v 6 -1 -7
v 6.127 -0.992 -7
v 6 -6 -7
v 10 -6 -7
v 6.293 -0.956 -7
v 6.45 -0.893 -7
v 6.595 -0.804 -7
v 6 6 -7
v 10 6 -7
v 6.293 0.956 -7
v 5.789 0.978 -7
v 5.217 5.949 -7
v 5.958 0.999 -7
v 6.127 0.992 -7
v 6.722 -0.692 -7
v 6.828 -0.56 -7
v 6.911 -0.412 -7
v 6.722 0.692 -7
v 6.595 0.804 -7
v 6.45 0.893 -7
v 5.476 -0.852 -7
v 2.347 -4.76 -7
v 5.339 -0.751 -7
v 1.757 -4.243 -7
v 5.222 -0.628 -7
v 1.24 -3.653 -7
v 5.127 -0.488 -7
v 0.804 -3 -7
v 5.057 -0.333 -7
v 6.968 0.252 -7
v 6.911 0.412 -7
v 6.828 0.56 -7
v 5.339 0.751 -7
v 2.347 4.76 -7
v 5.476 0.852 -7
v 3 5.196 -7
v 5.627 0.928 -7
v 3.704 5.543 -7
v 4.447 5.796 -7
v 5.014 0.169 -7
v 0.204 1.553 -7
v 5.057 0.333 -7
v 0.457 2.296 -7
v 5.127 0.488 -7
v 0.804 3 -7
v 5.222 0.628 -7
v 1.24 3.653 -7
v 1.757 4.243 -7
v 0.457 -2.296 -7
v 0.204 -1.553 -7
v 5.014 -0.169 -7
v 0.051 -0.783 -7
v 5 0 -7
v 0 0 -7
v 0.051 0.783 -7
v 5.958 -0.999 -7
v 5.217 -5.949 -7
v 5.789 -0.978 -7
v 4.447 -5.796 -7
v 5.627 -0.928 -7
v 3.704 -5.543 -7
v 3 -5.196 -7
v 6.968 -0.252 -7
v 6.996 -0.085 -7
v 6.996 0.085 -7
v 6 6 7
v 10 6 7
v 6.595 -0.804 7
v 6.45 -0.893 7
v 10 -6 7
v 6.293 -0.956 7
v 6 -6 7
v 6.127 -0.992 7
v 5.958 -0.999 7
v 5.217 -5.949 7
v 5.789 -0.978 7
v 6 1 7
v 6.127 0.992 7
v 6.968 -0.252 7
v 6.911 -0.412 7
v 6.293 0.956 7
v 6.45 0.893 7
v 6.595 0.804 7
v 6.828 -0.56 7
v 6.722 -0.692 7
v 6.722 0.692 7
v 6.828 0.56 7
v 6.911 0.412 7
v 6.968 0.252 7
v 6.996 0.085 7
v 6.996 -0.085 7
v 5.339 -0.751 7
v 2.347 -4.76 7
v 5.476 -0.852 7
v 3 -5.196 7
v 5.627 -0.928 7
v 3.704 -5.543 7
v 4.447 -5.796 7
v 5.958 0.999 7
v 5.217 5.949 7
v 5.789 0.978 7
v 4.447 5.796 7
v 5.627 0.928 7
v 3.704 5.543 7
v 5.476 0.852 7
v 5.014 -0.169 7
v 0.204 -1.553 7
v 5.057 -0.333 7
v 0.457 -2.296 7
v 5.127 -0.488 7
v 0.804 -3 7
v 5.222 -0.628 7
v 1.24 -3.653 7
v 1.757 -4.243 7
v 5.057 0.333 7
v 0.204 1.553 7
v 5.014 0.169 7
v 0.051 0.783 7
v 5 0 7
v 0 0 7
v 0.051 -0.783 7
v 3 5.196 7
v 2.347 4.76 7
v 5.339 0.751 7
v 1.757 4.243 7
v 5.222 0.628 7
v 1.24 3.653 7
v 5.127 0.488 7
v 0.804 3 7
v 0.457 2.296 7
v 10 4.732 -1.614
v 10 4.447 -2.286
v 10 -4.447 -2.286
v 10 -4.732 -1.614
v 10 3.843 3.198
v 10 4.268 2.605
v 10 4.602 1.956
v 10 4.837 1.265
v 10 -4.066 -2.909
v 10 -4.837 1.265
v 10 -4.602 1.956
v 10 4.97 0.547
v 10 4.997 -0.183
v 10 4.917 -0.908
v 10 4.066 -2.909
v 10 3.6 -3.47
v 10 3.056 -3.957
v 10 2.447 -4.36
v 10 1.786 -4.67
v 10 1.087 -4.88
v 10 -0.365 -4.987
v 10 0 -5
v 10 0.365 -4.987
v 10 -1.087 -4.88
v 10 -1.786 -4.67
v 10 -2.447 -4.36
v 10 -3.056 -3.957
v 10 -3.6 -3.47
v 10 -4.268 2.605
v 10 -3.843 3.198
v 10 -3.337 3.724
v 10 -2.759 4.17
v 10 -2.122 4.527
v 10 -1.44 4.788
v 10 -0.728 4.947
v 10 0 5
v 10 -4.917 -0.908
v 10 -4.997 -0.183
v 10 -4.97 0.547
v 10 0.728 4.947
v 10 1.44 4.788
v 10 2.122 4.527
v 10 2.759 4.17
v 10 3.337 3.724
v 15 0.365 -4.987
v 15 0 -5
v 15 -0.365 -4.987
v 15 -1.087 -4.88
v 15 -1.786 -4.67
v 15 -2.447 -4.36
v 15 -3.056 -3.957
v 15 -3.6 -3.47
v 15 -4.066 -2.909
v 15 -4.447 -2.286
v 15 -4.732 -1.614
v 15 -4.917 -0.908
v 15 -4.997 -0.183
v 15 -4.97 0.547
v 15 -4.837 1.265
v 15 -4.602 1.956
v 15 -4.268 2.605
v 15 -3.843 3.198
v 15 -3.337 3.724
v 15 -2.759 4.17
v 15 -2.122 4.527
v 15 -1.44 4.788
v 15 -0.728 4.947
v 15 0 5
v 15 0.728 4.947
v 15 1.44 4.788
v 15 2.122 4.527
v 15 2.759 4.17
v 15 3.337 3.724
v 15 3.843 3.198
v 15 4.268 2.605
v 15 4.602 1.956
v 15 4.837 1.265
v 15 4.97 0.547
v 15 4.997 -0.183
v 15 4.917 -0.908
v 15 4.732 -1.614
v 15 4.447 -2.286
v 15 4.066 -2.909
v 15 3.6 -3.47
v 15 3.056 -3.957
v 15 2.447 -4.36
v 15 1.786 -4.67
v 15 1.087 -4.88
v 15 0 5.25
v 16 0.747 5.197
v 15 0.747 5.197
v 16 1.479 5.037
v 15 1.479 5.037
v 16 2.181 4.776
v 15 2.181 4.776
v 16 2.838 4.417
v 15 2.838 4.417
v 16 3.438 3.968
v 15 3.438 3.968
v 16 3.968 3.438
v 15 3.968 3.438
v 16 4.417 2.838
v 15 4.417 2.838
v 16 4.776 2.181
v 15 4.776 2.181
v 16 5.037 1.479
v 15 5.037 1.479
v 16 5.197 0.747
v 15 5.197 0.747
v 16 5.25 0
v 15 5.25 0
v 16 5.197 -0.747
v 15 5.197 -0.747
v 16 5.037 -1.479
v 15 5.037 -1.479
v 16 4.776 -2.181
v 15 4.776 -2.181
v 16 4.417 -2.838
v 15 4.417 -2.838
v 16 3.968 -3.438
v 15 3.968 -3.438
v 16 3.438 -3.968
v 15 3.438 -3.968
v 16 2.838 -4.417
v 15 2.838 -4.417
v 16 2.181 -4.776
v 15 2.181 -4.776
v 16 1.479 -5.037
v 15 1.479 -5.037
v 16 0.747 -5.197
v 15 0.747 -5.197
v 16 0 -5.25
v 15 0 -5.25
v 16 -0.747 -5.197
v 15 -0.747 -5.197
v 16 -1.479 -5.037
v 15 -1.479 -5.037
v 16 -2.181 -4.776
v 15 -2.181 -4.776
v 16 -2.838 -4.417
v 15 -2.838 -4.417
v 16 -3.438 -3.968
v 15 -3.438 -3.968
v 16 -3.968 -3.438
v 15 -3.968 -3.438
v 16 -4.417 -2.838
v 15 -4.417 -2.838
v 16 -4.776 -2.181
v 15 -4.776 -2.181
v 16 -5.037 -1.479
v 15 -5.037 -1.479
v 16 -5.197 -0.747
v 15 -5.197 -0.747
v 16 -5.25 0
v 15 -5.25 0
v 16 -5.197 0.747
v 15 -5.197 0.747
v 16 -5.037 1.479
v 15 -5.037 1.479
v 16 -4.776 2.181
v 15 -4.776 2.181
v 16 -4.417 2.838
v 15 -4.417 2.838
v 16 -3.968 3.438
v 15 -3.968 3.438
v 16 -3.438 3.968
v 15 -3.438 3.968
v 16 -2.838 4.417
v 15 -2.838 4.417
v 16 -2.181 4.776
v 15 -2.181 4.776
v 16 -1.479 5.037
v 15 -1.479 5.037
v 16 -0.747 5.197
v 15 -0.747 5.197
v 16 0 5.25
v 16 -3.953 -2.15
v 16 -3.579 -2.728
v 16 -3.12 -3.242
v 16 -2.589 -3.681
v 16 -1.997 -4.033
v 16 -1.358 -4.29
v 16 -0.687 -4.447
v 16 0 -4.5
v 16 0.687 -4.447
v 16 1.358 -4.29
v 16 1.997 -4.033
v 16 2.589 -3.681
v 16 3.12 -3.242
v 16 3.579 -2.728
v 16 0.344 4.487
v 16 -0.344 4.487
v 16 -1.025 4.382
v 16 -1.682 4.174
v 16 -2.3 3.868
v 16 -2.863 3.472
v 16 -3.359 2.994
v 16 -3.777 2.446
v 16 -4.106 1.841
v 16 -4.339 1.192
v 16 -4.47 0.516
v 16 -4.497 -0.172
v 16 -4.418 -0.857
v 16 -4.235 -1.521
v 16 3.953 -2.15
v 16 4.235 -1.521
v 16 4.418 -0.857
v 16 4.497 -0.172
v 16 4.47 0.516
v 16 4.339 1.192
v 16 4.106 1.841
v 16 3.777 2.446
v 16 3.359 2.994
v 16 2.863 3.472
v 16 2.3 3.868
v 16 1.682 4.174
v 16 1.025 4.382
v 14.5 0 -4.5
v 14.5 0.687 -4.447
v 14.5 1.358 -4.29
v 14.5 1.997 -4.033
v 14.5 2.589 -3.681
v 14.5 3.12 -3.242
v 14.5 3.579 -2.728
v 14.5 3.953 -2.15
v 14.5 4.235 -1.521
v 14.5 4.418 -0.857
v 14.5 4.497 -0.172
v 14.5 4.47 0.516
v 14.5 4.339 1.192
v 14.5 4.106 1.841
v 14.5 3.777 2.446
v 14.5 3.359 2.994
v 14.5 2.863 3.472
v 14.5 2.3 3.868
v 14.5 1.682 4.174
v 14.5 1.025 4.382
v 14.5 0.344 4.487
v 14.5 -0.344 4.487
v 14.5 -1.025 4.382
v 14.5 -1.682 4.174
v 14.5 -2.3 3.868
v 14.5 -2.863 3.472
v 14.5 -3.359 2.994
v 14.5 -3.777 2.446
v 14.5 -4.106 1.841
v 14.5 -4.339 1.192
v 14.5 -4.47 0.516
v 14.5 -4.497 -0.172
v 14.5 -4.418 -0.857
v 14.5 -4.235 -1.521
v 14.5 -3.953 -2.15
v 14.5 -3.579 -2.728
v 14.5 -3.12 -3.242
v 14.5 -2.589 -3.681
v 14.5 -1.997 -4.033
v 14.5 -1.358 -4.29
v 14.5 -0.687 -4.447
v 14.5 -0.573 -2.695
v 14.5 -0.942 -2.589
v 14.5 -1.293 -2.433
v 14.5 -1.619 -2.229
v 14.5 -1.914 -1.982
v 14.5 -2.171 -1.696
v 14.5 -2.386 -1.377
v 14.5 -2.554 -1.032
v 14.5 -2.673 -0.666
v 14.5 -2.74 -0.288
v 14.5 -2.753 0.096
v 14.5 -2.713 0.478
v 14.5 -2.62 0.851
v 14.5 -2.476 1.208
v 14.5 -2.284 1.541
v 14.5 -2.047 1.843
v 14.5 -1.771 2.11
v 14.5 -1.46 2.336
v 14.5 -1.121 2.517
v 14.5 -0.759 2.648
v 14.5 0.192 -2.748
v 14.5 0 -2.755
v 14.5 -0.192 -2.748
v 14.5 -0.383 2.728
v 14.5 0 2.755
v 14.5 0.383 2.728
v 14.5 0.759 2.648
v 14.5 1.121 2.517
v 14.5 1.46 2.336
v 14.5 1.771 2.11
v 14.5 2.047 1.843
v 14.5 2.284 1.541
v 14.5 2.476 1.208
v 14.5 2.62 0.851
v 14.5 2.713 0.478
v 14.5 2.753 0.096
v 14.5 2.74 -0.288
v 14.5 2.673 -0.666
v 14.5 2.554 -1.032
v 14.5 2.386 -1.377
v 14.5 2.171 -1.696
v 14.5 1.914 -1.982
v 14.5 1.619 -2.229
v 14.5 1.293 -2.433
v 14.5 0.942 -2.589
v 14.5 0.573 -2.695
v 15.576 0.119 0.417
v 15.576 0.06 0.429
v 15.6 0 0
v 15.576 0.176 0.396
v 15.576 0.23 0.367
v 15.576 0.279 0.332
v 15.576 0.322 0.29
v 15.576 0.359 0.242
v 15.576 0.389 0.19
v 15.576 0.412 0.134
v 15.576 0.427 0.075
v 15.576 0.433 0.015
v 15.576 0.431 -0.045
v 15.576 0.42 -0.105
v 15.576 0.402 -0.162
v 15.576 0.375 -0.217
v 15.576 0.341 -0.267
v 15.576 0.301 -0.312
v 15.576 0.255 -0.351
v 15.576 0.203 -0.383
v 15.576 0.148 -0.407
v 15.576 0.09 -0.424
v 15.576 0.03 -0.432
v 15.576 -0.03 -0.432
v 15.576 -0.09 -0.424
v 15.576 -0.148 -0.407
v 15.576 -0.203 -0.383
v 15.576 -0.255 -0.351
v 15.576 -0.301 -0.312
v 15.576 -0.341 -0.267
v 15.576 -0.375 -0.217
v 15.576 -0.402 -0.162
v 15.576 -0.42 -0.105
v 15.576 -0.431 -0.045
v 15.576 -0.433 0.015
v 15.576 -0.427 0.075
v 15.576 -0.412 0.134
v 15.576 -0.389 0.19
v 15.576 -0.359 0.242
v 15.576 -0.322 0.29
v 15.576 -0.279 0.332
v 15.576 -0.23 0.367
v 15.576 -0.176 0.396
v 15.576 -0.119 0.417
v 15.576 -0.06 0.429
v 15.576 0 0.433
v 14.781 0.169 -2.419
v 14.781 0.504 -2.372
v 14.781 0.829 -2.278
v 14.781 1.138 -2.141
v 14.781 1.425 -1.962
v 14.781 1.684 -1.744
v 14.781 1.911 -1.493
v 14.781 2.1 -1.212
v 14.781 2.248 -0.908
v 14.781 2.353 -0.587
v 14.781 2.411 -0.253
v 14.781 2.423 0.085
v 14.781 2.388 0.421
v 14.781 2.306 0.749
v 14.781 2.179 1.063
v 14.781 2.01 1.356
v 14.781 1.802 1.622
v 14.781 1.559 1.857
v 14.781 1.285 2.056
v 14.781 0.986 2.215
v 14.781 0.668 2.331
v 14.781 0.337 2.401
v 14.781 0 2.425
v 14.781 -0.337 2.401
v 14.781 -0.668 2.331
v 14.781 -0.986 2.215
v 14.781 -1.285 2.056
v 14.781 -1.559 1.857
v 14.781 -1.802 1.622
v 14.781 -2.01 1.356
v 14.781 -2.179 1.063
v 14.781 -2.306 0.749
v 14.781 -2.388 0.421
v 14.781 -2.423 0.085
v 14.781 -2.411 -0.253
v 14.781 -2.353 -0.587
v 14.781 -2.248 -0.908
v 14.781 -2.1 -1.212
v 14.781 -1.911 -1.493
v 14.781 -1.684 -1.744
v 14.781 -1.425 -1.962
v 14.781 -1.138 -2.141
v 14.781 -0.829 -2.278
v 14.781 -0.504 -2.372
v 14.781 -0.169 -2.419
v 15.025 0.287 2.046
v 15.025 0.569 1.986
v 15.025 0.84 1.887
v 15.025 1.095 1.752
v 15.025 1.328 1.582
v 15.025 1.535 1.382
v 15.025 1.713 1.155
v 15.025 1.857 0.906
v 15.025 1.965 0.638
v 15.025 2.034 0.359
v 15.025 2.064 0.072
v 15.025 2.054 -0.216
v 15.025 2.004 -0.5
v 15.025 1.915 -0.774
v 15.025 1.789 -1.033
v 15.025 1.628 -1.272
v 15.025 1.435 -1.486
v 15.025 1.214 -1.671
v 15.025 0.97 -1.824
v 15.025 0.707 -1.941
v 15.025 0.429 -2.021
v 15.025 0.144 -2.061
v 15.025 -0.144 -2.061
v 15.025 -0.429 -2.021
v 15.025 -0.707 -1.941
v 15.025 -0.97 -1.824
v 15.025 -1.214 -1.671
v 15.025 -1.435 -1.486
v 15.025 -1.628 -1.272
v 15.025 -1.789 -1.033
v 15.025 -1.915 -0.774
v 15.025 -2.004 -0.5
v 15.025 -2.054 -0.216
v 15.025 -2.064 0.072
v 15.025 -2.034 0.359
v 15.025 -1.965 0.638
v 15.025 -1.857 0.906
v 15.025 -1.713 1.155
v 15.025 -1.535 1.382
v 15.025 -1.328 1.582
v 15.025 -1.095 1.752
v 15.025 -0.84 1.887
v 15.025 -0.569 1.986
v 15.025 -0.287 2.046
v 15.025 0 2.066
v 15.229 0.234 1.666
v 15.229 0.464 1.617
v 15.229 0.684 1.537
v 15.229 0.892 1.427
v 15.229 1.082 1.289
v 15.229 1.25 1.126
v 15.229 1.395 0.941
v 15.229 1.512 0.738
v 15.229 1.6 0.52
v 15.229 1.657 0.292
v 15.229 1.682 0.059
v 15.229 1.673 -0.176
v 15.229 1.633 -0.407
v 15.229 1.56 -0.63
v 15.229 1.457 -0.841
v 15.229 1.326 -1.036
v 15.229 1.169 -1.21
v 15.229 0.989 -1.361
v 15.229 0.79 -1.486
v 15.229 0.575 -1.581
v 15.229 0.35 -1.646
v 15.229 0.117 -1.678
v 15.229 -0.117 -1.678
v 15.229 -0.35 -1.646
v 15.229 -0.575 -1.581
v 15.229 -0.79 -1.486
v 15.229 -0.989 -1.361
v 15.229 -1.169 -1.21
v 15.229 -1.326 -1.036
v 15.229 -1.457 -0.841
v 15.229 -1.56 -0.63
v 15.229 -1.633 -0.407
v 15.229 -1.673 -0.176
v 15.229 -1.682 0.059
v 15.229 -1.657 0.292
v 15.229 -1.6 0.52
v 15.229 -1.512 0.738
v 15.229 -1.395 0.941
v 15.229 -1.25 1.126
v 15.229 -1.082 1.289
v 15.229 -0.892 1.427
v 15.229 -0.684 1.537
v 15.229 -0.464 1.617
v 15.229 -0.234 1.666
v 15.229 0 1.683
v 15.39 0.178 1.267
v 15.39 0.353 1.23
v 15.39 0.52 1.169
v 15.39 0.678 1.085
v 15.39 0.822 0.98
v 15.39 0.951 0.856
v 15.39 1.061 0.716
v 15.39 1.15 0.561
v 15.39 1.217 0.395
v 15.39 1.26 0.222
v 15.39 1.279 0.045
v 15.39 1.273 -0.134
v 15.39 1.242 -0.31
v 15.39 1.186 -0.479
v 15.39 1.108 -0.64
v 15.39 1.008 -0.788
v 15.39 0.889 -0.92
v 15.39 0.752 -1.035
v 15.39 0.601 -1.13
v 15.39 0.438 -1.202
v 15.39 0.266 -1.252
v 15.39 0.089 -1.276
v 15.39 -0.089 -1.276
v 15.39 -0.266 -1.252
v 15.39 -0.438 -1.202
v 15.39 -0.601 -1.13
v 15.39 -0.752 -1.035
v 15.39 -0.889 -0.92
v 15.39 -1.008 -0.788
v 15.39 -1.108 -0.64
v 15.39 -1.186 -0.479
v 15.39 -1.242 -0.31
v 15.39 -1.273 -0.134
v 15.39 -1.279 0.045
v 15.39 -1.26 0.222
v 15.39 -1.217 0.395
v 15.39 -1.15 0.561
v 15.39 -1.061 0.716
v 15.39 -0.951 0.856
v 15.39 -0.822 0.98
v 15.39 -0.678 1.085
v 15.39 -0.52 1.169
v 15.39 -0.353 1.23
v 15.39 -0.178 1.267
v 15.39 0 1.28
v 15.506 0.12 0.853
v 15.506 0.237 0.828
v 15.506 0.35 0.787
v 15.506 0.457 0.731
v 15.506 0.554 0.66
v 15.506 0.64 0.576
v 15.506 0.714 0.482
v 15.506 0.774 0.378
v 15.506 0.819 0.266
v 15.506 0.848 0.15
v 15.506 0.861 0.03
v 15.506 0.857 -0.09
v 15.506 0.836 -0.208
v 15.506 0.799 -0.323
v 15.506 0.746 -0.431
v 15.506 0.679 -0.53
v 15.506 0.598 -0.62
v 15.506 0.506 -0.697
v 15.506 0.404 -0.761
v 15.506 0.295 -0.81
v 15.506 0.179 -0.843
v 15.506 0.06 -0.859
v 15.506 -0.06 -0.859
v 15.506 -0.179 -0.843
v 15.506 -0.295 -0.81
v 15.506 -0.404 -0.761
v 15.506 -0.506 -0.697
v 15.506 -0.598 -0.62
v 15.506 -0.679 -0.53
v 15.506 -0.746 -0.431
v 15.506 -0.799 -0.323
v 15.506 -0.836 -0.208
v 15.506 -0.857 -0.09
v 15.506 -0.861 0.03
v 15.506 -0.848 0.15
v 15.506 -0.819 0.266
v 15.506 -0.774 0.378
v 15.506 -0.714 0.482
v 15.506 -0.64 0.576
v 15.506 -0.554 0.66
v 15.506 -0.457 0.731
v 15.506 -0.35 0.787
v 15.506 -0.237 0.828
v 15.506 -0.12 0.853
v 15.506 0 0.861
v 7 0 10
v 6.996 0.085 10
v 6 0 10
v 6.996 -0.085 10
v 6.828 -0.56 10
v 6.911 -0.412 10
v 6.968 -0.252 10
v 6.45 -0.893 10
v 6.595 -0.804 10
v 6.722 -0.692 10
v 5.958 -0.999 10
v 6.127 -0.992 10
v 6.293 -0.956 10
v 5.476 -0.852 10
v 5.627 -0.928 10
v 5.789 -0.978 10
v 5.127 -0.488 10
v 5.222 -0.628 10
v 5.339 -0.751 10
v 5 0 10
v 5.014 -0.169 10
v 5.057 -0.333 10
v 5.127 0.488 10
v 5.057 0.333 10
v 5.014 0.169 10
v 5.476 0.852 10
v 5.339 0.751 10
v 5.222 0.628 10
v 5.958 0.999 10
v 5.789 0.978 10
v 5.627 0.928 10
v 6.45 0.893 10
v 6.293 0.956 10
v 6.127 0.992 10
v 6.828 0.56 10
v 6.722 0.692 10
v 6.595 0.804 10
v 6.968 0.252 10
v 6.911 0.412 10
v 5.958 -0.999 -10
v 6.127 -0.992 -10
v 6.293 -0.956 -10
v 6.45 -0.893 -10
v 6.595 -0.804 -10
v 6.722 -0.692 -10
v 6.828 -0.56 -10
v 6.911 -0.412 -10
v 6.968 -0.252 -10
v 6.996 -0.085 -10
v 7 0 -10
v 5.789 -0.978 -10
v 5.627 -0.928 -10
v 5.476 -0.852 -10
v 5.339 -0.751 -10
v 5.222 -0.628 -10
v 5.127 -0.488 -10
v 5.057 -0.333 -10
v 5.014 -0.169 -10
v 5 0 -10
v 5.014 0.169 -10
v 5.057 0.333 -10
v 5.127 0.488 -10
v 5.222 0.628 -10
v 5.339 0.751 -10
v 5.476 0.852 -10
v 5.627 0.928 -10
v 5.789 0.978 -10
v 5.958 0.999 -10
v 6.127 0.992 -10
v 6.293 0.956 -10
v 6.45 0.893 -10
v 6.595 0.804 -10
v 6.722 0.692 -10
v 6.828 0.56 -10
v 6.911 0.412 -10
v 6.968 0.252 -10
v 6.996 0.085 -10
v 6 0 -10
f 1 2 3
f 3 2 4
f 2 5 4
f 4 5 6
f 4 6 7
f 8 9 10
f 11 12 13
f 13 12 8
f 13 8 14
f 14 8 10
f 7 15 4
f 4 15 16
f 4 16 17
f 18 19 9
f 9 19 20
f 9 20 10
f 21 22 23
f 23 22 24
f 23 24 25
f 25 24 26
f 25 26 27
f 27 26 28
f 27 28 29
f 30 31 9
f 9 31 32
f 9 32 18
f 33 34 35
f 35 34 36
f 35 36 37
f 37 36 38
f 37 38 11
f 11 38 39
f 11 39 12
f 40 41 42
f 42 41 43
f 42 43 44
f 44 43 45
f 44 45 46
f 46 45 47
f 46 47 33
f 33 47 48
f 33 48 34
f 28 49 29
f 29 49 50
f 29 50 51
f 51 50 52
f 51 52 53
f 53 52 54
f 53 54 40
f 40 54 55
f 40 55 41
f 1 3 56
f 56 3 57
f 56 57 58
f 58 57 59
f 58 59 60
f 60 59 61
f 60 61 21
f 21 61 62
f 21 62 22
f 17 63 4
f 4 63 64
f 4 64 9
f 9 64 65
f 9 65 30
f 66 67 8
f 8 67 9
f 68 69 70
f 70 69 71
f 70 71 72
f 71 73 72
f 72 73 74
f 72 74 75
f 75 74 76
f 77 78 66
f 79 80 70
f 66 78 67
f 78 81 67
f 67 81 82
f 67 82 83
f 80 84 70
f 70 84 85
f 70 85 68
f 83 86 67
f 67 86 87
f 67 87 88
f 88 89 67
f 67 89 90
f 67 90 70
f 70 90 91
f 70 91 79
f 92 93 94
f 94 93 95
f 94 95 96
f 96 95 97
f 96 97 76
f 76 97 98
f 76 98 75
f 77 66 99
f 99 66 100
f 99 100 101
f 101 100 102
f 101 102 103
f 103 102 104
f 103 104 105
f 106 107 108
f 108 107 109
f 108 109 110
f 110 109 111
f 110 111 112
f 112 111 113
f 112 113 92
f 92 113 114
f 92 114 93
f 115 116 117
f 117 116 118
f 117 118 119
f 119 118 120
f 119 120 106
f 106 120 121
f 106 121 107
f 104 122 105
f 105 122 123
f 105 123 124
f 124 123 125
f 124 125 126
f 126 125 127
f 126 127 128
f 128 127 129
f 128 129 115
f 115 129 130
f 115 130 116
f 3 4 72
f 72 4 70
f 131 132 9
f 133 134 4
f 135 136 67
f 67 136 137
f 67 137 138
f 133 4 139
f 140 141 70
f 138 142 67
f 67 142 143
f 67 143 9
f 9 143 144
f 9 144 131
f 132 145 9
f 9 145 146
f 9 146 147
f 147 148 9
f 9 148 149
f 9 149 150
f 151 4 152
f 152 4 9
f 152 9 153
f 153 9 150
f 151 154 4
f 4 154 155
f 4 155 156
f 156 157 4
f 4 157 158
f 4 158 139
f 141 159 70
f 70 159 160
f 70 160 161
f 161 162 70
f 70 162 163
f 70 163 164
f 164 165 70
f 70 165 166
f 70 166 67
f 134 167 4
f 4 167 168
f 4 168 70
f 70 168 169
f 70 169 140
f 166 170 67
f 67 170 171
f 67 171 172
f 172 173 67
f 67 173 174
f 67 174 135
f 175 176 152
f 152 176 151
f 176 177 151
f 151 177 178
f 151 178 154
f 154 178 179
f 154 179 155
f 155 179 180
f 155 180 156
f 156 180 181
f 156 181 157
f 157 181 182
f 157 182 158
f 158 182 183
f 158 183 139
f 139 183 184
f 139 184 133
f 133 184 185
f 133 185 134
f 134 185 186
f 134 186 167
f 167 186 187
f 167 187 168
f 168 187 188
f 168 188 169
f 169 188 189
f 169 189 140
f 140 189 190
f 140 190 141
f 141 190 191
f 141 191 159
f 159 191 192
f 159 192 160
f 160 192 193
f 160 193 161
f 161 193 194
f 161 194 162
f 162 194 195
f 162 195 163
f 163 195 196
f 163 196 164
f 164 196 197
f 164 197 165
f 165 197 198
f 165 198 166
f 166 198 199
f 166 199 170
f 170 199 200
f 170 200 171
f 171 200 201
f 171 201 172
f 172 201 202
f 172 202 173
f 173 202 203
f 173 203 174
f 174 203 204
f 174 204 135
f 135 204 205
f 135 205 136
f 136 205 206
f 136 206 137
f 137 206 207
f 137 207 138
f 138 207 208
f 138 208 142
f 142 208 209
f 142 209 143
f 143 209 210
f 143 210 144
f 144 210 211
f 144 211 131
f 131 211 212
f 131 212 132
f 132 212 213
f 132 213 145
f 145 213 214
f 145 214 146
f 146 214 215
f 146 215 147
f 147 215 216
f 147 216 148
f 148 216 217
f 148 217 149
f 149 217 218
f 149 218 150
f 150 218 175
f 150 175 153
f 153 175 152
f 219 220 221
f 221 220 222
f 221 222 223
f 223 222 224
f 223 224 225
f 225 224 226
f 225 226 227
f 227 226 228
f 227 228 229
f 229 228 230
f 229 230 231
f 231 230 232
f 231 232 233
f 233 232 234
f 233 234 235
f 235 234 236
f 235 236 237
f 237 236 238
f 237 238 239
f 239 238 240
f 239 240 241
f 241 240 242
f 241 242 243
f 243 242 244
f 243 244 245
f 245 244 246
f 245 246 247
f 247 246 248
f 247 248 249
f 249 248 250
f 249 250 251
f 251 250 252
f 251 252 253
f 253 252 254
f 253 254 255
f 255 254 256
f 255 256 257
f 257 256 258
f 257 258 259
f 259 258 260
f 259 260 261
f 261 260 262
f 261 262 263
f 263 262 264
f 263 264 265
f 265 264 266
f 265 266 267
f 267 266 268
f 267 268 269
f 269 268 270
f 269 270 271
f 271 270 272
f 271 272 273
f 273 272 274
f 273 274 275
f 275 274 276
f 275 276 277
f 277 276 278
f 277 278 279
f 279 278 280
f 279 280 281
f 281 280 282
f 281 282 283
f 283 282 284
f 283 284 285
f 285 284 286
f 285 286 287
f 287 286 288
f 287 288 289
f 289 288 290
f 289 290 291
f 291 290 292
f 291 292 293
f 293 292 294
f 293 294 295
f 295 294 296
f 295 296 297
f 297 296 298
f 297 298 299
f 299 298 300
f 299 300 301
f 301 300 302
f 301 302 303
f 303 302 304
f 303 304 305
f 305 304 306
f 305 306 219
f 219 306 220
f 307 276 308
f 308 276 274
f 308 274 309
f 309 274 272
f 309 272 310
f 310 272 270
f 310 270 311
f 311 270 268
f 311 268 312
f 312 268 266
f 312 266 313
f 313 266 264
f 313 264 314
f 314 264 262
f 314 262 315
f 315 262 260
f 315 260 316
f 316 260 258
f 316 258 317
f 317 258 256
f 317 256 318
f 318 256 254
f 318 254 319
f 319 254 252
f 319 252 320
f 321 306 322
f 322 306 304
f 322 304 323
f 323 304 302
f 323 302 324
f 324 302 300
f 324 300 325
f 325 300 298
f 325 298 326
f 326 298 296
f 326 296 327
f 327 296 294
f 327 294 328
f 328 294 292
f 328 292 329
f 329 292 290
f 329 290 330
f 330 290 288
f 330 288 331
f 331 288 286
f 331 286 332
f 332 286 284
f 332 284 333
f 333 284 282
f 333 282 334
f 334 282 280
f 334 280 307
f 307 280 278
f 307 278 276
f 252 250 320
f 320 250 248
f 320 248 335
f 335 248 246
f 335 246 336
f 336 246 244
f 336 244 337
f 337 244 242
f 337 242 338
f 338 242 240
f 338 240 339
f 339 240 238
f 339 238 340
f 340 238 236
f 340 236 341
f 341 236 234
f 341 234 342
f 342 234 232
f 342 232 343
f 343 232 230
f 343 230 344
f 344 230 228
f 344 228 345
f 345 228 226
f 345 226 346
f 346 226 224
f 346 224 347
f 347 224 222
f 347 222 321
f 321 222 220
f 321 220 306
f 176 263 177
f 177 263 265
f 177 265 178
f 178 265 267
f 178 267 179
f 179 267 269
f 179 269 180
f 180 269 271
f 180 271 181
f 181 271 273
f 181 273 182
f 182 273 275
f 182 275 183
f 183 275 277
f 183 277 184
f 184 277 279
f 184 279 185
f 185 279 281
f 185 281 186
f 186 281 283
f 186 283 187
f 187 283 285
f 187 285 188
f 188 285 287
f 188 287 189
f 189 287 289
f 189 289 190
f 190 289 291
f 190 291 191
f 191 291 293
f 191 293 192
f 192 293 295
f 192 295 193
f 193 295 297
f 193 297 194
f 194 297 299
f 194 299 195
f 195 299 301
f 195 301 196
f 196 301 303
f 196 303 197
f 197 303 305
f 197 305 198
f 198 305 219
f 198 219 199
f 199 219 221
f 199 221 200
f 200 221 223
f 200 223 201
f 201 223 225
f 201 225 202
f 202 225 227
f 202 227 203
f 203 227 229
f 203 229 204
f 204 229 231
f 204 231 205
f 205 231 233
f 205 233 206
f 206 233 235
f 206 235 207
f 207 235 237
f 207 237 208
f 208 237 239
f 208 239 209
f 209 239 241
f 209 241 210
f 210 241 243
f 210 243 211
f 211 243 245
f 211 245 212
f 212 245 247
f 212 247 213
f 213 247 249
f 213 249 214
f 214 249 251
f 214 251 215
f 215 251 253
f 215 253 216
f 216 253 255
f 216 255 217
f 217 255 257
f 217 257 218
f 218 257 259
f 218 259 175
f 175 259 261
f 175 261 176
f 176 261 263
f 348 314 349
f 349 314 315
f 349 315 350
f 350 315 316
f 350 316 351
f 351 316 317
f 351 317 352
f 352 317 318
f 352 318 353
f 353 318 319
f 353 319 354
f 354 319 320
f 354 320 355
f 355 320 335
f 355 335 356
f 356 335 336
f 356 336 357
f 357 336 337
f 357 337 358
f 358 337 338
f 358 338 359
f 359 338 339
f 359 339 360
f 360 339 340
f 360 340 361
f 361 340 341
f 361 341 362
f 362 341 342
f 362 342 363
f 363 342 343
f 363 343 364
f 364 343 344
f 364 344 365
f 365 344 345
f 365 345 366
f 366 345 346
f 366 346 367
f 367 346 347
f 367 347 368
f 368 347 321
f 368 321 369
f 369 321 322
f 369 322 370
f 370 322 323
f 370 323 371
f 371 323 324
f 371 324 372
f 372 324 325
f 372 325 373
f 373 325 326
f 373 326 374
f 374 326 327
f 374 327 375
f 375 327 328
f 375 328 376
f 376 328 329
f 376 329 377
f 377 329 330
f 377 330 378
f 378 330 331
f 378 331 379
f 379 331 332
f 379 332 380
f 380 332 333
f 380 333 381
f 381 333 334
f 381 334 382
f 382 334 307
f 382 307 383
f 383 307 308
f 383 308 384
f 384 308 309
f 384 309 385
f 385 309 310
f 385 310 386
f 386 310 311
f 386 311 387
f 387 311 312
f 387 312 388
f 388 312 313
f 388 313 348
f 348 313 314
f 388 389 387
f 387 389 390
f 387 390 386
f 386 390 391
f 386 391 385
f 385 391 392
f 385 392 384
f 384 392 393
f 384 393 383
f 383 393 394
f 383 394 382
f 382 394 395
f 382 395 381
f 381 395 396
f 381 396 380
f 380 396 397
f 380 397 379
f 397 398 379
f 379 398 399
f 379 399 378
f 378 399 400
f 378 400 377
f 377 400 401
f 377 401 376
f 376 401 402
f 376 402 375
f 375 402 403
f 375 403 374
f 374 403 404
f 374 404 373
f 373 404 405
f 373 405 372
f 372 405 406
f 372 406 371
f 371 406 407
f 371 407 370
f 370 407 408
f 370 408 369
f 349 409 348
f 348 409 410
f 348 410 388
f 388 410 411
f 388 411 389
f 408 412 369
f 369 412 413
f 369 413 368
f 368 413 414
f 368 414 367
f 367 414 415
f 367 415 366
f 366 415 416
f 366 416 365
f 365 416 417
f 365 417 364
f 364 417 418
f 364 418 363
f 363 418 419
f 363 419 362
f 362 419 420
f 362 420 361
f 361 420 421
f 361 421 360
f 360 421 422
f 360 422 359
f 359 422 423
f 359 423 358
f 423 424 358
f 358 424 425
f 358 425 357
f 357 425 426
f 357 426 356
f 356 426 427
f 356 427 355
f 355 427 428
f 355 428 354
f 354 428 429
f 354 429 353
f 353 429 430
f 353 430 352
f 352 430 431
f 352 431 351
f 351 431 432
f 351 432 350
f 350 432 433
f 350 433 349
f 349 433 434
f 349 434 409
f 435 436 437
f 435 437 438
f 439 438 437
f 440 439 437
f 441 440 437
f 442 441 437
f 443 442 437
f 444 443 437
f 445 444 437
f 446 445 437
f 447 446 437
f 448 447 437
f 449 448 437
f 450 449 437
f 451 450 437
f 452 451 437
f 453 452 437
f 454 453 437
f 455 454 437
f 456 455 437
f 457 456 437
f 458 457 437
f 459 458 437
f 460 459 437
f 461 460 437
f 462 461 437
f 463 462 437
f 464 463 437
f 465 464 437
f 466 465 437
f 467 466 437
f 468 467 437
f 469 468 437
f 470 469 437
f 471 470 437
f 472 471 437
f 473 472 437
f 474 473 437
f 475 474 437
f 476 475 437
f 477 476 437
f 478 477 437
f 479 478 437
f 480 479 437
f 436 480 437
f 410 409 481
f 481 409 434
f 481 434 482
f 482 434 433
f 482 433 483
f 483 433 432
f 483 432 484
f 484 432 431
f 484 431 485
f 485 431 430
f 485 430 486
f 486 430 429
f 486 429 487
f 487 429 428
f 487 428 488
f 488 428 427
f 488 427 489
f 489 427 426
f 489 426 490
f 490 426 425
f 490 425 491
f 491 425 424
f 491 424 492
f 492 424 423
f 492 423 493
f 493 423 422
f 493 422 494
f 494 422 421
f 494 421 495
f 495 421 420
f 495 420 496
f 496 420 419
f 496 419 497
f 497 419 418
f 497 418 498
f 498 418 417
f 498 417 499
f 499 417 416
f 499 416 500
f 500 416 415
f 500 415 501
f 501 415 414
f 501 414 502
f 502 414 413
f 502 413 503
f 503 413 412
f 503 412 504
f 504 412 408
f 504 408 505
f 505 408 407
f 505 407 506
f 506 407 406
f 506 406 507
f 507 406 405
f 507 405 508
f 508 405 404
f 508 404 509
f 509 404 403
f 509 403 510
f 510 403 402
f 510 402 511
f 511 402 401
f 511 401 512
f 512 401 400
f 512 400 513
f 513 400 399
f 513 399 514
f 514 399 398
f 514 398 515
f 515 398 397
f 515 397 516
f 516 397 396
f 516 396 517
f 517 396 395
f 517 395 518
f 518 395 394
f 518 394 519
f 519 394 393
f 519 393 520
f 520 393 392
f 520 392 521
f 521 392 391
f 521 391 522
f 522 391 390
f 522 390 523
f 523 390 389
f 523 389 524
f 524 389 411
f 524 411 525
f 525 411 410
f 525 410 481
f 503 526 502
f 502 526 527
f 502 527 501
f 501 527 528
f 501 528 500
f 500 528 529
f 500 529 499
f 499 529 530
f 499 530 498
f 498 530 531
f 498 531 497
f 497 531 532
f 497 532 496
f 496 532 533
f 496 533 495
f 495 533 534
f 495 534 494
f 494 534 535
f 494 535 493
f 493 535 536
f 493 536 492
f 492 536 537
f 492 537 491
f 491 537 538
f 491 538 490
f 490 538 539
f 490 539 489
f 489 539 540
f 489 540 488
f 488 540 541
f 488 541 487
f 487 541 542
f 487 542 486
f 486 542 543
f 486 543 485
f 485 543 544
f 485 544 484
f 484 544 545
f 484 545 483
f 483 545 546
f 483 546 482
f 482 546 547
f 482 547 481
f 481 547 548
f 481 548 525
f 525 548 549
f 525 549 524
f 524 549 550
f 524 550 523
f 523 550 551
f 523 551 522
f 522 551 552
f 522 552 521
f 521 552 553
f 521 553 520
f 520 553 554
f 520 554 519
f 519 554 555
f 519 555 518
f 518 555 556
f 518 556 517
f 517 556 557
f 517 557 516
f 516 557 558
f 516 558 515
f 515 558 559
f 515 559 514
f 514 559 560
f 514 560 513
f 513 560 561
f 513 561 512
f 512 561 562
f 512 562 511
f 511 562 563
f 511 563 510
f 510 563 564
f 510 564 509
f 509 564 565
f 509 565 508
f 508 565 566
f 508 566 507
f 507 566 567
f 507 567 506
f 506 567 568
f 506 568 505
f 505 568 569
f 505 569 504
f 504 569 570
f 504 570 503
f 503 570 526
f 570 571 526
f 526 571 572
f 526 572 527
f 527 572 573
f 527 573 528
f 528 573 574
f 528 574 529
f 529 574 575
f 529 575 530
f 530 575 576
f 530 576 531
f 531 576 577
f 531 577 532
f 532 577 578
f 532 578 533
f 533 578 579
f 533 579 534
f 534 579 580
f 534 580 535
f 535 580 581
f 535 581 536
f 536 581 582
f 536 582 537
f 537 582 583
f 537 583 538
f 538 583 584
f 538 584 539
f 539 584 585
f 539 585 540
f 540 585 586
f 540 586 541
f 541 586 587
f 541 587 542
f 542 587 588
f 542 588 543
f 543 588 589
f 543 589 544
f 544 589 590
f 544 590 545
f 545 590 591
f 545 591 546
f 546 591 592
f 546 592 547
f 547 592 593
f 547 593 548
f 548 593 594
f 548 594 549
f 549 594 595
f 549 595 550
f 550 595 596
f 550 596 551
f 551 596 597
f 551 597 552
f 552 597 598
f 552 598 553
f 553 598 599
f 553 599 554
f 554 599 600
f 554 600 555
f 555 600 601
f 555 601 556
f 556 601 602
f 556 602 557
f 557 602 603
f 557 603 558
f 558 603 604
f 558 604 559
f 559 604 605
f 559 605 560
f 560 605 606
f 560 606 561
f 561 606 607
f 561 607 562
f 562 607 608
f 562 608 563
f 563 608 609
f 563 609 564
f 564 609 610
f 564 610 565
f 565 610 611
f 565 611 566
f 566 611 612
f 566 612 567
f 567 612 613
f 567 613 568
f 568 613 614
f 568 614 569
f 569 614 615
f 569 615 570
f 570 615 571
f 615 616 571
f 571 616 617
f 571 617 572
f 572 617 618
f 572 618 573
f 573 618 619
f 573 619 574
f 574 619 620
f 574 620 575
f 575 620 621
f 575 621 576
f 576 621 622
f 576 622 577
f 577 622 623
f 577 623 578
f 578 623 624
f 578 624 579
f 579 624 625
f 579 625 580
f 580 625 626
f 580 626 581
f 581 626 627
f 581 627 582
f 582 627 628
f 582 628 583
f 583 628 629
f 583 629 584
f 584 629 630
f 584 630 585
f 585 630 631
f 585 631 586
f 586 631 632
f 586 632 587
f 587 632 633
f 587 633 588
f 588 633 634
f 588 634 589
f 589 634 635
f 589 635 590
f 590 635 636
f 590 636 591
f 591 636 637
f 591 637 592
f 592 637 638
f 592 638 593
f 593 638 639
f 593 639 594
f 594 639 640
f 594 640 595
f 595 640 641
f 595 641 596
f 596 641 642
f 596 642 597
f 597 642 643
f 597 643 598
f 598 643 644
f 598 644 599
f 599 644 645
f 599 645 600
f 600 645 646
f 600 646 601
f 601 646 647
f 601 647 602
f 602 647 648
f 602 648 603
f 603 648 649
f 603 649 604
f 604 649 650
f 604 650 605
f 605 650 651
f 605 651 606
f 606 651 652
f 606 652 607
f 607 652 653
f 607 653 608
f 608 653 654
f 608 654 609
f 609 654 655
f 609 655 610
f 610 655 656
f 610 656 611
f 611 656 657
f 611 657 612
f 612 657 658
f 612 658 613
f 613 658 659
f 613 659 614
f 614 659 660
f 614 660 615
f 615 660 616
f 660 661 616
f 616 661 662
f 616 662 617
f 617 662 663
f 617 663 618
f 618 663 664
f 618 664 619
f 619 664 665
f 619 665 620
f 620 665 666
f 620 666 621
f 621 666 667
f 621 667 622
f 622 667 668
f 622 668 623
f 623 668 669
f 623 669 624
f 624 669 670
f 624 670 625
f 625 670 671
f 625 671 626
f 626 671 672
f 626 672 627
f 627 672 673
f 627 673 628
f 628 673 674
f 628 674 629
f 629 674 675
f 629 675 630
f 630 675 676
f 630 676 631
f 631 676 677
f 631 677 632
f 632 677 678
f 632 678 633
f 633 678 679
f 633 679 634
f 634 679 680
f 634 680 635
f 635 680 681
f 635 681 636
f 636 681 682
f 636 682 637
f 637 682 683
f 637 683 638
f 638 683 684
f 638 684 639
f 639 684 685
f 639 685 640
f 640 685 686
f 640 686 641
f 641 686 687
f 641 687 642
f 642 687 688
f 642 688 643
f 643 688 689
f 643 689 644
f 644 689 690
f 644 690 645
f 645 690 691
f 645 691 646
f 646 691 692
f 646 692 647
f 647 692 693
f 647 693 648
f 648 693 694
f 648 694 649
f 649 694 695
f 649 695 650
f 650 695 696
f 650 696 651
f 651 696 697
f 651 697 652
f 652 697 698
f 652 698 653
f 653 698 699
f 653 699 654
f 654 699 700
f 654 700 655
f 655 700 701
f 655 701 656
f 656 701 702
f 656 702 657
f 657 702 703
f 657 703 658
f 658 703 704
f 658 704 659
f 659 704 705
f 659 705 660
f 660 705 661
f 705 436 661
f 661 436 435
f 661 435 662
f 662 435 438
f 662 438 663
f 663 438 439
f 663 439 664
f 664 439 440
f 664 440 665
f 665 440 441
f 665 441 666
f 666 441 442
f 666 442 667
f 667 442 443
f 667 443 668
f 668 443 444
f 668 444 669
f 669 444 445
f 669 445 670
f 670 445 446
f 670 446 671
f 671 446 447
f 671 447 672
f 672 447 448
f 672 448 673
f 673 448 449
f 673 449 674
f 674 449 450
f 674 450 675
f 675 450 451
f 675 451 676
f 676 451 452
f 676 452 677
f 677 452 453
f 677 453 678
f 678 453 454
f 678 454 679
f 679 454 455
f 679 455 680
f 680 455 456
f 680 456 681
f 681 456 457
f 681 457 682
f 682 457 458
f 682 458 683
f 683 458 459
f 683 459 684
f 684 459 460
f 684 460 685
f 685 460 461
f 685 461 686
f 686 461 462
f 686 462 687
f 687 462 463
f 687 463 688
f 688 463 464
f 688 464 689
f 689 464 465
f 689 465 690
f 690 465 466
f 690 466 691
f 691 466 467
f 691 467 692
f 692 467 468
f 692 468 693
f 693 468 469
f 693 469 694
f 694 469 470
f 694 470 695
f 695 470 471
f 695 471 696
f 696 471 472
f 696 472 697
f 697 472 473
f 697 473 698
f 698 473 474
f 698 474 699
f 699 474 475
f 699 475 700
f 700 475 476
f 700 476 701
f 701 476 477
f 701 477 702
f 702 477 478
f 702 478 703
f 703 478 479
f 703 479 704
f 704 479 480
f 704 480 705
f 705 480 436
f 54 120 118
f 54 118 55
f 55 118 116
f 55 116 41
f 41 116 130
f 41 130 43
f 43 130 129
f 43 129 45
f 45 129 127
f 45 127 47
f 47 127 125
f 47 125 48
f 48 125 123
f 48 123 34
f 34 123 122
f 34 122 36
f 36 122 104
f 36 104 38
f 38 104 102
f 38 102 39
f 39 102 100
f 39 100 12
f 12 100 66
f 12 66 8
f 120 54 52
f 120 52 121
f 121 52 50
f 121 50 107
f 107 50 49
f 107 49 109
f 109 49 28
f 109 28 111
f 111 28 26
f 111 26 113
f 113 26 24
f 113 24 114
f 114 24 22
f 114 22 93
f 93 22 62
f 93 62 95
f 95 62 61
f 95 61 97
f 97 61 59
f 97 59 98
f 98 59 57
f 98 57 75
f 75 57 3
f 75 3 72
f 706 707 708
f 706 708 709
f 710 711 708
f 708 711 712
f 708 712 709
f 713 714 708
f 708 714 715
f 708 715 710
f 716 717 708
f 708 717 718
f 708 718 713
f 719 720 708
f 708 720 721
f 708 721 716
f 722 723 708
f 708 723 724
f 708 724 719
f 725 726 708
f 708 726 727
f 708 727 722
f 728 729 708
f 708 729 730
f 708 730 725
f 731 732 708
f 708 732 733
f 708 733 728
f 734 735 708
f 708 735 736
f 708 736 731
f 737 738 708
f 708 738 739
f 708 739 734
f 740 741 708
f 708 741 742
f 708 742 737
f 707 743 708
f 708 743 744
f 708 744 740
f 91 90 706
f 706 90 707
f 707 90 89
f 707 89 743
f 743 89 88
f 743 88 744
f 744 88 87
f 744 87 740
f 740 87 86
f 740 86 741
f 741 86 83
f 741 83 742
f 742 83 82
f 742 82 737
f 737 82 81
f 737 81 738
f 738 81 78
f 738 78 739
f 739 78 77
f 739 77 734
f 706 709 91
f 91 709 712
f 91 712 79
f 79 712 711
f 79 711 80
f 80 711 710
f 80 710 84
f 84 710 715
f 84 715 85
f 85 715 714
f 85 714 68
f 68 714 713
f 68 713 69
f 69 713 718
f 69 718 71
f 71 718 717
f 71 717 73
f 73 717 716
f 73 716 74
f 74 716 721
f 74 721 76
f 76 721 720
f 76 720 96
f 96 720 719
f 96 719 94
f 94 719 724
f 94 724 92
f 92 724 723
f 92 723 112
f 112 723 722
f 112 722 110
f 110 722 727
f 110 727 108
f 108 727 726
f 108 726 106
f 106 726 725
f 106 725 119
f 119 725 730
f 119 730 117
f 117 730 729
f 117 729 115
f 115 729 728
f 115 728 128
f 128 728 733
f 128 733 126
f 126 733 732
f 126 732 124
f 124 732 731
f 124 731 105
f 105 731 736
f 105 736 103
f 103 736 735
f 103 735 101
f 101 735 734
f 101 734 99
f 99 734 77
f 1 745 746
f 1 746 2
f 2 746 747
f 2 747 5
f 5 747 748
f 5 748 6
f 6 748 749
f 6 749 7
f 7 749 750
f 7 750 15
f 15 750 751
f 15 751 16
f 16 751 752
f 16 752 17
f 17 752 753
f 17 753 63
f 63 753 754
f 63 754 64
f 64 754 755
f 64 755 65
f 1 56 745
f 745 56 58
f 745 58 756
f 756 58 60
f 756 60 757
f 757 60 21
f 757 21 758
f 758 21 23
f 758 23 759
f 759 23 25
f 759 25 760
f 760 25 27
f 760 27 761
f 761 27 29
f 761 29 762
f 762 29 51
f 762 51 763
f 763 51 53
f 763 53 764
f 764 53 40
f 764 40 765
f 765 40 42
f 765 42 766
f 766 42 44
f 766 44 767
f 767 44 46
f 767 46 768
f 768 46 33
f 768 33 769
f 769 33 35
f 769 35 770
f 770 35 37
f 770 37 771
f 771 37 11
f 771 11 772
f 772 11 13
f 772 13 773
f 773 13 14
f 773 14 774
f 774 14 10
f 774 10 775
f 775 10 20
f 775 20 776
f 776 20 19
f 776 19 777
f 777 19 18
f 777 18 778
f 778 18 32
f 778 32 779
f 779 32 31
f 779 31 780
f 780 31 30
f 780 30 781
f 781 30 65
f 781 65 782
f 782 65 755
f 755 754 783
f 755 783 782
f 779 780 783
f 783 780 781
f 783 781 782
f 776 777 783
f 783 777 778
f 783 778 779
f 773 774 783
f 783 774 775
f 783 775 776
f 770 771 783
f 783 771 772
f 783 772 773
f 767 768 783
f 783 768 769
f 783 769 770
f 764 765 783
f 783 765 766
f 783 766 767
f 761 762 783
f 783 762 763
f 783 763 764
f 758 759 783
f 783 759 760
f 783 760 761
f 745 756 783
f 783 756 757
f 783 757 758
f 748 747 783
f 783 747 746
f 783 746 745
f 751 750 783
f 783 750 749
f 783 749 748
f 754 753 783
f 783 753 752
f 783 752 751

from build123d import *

# Parameters (mm, degrees)
SKETCH1_W           = 14
SKETCH1_H           = 12
BOSS_EXTRUDE1_DEPTH = 10
SKETCH2_R           = 5
BOSS_EXTRUDE2_DEPTH = 5
SKETCH3_R           = 5.25
BOSS_EXTRUDE3_DEPTH = 1
SKETCH5_R           = 4.5
CUT_EXTRUDE1_DEPTH  = 1.5
FILLET1_R           = 6
SKETCH11_R          = 1
BOSS_EXTRUDE4_DEPTH = 10


with BuildPart() as part:
    # Sketch1 → Boss-Extrude1 (new body)
    with BuildSketch(Plane(origin=(0, 0, 0), x_dir=(0, 0, -1), z_dir=(1, 0, 0))):
        Rectangle(SKETCH1_W, SKETCH1_H)
    extrude(amount=BOSS_EXTRUDE1_DEPTH)

    # Sketch2 → Boss-Extrude2 (add)
    with BuildSketch(Plane(origin=(10, 0, 0), x_dir=(0, 0, -1), z_dir=(1, 0, 0))):
        Circle(SKETCH2_R)
    extrude(amount=BOSS_EXTRUDE2_DEPTH)

    # Sketch3 → Boss-Extrude3 (add)
    with BuildSketch(Plane(origin=(15, 0, 0), x_dir=(0, 0, -1), z_dir=(1, 0, 0))):
        Circle(SKETCH3_R)
    extrude(amount=BOSS_EXTRUDE3_DEPTH)

    # Sketch5 → Cut-Extrude1 (cut)
    with BuildSketch(Plane(origin=(16, 0, 0), x_dir=(0, 0, -1), z_dir=(1, 0, 0))):
        Circle(SKETCH5_R)
    extrude(amount=-CUT_EXTRUDE1_DEPTH, mode=Mode.SUBTRACT)

    # Sketch6 → Revolve2 (revolve)
    with BuildSketch(Plane(origin=(0, 0, 0), x_dir=(1, 0, 0), z_dir=(0, 1, 0)), mode=Mode.PRIVATE) as revolve2_sk:
        with BuildLine():
            Line((11.6, 0), (15.6, 0))
            ThreePointArc((15.6, 0), (14.428427125, 2.828427125), (11.6, 4))
            Line((11.6, 4), (11.6, 0))
        make_face()
    revolve(revolve2_sk.sketch.rotate(Axis((11.6, 0, 0), (1, 0, 0)), 180), axis=Axis((11.6, 0, 0), (1, 0, 0)))

    # Fillet1
    fillet1_edges = [part.edges().sort_by_distance(p)[0] for p in [
        (0, -6, 0),
        (0, 6, 0),
    ]]
    fillet(fillet1_edges, radius=FILLET1_R - 0.0001)  # a hair under: the kernel refuses the full size

    # Sketch11 → Boss-Extrude4 (add, symmetric)
    with BuildSketch(Plane.XY):
        with Locations(Location((6, 0, 0), (0, 0, 90))):
            Circle(SKETCH11_R)
    extrude(amount=BOSS_EXTRUDE4_DEPTH, both=True)


solid = part.part
